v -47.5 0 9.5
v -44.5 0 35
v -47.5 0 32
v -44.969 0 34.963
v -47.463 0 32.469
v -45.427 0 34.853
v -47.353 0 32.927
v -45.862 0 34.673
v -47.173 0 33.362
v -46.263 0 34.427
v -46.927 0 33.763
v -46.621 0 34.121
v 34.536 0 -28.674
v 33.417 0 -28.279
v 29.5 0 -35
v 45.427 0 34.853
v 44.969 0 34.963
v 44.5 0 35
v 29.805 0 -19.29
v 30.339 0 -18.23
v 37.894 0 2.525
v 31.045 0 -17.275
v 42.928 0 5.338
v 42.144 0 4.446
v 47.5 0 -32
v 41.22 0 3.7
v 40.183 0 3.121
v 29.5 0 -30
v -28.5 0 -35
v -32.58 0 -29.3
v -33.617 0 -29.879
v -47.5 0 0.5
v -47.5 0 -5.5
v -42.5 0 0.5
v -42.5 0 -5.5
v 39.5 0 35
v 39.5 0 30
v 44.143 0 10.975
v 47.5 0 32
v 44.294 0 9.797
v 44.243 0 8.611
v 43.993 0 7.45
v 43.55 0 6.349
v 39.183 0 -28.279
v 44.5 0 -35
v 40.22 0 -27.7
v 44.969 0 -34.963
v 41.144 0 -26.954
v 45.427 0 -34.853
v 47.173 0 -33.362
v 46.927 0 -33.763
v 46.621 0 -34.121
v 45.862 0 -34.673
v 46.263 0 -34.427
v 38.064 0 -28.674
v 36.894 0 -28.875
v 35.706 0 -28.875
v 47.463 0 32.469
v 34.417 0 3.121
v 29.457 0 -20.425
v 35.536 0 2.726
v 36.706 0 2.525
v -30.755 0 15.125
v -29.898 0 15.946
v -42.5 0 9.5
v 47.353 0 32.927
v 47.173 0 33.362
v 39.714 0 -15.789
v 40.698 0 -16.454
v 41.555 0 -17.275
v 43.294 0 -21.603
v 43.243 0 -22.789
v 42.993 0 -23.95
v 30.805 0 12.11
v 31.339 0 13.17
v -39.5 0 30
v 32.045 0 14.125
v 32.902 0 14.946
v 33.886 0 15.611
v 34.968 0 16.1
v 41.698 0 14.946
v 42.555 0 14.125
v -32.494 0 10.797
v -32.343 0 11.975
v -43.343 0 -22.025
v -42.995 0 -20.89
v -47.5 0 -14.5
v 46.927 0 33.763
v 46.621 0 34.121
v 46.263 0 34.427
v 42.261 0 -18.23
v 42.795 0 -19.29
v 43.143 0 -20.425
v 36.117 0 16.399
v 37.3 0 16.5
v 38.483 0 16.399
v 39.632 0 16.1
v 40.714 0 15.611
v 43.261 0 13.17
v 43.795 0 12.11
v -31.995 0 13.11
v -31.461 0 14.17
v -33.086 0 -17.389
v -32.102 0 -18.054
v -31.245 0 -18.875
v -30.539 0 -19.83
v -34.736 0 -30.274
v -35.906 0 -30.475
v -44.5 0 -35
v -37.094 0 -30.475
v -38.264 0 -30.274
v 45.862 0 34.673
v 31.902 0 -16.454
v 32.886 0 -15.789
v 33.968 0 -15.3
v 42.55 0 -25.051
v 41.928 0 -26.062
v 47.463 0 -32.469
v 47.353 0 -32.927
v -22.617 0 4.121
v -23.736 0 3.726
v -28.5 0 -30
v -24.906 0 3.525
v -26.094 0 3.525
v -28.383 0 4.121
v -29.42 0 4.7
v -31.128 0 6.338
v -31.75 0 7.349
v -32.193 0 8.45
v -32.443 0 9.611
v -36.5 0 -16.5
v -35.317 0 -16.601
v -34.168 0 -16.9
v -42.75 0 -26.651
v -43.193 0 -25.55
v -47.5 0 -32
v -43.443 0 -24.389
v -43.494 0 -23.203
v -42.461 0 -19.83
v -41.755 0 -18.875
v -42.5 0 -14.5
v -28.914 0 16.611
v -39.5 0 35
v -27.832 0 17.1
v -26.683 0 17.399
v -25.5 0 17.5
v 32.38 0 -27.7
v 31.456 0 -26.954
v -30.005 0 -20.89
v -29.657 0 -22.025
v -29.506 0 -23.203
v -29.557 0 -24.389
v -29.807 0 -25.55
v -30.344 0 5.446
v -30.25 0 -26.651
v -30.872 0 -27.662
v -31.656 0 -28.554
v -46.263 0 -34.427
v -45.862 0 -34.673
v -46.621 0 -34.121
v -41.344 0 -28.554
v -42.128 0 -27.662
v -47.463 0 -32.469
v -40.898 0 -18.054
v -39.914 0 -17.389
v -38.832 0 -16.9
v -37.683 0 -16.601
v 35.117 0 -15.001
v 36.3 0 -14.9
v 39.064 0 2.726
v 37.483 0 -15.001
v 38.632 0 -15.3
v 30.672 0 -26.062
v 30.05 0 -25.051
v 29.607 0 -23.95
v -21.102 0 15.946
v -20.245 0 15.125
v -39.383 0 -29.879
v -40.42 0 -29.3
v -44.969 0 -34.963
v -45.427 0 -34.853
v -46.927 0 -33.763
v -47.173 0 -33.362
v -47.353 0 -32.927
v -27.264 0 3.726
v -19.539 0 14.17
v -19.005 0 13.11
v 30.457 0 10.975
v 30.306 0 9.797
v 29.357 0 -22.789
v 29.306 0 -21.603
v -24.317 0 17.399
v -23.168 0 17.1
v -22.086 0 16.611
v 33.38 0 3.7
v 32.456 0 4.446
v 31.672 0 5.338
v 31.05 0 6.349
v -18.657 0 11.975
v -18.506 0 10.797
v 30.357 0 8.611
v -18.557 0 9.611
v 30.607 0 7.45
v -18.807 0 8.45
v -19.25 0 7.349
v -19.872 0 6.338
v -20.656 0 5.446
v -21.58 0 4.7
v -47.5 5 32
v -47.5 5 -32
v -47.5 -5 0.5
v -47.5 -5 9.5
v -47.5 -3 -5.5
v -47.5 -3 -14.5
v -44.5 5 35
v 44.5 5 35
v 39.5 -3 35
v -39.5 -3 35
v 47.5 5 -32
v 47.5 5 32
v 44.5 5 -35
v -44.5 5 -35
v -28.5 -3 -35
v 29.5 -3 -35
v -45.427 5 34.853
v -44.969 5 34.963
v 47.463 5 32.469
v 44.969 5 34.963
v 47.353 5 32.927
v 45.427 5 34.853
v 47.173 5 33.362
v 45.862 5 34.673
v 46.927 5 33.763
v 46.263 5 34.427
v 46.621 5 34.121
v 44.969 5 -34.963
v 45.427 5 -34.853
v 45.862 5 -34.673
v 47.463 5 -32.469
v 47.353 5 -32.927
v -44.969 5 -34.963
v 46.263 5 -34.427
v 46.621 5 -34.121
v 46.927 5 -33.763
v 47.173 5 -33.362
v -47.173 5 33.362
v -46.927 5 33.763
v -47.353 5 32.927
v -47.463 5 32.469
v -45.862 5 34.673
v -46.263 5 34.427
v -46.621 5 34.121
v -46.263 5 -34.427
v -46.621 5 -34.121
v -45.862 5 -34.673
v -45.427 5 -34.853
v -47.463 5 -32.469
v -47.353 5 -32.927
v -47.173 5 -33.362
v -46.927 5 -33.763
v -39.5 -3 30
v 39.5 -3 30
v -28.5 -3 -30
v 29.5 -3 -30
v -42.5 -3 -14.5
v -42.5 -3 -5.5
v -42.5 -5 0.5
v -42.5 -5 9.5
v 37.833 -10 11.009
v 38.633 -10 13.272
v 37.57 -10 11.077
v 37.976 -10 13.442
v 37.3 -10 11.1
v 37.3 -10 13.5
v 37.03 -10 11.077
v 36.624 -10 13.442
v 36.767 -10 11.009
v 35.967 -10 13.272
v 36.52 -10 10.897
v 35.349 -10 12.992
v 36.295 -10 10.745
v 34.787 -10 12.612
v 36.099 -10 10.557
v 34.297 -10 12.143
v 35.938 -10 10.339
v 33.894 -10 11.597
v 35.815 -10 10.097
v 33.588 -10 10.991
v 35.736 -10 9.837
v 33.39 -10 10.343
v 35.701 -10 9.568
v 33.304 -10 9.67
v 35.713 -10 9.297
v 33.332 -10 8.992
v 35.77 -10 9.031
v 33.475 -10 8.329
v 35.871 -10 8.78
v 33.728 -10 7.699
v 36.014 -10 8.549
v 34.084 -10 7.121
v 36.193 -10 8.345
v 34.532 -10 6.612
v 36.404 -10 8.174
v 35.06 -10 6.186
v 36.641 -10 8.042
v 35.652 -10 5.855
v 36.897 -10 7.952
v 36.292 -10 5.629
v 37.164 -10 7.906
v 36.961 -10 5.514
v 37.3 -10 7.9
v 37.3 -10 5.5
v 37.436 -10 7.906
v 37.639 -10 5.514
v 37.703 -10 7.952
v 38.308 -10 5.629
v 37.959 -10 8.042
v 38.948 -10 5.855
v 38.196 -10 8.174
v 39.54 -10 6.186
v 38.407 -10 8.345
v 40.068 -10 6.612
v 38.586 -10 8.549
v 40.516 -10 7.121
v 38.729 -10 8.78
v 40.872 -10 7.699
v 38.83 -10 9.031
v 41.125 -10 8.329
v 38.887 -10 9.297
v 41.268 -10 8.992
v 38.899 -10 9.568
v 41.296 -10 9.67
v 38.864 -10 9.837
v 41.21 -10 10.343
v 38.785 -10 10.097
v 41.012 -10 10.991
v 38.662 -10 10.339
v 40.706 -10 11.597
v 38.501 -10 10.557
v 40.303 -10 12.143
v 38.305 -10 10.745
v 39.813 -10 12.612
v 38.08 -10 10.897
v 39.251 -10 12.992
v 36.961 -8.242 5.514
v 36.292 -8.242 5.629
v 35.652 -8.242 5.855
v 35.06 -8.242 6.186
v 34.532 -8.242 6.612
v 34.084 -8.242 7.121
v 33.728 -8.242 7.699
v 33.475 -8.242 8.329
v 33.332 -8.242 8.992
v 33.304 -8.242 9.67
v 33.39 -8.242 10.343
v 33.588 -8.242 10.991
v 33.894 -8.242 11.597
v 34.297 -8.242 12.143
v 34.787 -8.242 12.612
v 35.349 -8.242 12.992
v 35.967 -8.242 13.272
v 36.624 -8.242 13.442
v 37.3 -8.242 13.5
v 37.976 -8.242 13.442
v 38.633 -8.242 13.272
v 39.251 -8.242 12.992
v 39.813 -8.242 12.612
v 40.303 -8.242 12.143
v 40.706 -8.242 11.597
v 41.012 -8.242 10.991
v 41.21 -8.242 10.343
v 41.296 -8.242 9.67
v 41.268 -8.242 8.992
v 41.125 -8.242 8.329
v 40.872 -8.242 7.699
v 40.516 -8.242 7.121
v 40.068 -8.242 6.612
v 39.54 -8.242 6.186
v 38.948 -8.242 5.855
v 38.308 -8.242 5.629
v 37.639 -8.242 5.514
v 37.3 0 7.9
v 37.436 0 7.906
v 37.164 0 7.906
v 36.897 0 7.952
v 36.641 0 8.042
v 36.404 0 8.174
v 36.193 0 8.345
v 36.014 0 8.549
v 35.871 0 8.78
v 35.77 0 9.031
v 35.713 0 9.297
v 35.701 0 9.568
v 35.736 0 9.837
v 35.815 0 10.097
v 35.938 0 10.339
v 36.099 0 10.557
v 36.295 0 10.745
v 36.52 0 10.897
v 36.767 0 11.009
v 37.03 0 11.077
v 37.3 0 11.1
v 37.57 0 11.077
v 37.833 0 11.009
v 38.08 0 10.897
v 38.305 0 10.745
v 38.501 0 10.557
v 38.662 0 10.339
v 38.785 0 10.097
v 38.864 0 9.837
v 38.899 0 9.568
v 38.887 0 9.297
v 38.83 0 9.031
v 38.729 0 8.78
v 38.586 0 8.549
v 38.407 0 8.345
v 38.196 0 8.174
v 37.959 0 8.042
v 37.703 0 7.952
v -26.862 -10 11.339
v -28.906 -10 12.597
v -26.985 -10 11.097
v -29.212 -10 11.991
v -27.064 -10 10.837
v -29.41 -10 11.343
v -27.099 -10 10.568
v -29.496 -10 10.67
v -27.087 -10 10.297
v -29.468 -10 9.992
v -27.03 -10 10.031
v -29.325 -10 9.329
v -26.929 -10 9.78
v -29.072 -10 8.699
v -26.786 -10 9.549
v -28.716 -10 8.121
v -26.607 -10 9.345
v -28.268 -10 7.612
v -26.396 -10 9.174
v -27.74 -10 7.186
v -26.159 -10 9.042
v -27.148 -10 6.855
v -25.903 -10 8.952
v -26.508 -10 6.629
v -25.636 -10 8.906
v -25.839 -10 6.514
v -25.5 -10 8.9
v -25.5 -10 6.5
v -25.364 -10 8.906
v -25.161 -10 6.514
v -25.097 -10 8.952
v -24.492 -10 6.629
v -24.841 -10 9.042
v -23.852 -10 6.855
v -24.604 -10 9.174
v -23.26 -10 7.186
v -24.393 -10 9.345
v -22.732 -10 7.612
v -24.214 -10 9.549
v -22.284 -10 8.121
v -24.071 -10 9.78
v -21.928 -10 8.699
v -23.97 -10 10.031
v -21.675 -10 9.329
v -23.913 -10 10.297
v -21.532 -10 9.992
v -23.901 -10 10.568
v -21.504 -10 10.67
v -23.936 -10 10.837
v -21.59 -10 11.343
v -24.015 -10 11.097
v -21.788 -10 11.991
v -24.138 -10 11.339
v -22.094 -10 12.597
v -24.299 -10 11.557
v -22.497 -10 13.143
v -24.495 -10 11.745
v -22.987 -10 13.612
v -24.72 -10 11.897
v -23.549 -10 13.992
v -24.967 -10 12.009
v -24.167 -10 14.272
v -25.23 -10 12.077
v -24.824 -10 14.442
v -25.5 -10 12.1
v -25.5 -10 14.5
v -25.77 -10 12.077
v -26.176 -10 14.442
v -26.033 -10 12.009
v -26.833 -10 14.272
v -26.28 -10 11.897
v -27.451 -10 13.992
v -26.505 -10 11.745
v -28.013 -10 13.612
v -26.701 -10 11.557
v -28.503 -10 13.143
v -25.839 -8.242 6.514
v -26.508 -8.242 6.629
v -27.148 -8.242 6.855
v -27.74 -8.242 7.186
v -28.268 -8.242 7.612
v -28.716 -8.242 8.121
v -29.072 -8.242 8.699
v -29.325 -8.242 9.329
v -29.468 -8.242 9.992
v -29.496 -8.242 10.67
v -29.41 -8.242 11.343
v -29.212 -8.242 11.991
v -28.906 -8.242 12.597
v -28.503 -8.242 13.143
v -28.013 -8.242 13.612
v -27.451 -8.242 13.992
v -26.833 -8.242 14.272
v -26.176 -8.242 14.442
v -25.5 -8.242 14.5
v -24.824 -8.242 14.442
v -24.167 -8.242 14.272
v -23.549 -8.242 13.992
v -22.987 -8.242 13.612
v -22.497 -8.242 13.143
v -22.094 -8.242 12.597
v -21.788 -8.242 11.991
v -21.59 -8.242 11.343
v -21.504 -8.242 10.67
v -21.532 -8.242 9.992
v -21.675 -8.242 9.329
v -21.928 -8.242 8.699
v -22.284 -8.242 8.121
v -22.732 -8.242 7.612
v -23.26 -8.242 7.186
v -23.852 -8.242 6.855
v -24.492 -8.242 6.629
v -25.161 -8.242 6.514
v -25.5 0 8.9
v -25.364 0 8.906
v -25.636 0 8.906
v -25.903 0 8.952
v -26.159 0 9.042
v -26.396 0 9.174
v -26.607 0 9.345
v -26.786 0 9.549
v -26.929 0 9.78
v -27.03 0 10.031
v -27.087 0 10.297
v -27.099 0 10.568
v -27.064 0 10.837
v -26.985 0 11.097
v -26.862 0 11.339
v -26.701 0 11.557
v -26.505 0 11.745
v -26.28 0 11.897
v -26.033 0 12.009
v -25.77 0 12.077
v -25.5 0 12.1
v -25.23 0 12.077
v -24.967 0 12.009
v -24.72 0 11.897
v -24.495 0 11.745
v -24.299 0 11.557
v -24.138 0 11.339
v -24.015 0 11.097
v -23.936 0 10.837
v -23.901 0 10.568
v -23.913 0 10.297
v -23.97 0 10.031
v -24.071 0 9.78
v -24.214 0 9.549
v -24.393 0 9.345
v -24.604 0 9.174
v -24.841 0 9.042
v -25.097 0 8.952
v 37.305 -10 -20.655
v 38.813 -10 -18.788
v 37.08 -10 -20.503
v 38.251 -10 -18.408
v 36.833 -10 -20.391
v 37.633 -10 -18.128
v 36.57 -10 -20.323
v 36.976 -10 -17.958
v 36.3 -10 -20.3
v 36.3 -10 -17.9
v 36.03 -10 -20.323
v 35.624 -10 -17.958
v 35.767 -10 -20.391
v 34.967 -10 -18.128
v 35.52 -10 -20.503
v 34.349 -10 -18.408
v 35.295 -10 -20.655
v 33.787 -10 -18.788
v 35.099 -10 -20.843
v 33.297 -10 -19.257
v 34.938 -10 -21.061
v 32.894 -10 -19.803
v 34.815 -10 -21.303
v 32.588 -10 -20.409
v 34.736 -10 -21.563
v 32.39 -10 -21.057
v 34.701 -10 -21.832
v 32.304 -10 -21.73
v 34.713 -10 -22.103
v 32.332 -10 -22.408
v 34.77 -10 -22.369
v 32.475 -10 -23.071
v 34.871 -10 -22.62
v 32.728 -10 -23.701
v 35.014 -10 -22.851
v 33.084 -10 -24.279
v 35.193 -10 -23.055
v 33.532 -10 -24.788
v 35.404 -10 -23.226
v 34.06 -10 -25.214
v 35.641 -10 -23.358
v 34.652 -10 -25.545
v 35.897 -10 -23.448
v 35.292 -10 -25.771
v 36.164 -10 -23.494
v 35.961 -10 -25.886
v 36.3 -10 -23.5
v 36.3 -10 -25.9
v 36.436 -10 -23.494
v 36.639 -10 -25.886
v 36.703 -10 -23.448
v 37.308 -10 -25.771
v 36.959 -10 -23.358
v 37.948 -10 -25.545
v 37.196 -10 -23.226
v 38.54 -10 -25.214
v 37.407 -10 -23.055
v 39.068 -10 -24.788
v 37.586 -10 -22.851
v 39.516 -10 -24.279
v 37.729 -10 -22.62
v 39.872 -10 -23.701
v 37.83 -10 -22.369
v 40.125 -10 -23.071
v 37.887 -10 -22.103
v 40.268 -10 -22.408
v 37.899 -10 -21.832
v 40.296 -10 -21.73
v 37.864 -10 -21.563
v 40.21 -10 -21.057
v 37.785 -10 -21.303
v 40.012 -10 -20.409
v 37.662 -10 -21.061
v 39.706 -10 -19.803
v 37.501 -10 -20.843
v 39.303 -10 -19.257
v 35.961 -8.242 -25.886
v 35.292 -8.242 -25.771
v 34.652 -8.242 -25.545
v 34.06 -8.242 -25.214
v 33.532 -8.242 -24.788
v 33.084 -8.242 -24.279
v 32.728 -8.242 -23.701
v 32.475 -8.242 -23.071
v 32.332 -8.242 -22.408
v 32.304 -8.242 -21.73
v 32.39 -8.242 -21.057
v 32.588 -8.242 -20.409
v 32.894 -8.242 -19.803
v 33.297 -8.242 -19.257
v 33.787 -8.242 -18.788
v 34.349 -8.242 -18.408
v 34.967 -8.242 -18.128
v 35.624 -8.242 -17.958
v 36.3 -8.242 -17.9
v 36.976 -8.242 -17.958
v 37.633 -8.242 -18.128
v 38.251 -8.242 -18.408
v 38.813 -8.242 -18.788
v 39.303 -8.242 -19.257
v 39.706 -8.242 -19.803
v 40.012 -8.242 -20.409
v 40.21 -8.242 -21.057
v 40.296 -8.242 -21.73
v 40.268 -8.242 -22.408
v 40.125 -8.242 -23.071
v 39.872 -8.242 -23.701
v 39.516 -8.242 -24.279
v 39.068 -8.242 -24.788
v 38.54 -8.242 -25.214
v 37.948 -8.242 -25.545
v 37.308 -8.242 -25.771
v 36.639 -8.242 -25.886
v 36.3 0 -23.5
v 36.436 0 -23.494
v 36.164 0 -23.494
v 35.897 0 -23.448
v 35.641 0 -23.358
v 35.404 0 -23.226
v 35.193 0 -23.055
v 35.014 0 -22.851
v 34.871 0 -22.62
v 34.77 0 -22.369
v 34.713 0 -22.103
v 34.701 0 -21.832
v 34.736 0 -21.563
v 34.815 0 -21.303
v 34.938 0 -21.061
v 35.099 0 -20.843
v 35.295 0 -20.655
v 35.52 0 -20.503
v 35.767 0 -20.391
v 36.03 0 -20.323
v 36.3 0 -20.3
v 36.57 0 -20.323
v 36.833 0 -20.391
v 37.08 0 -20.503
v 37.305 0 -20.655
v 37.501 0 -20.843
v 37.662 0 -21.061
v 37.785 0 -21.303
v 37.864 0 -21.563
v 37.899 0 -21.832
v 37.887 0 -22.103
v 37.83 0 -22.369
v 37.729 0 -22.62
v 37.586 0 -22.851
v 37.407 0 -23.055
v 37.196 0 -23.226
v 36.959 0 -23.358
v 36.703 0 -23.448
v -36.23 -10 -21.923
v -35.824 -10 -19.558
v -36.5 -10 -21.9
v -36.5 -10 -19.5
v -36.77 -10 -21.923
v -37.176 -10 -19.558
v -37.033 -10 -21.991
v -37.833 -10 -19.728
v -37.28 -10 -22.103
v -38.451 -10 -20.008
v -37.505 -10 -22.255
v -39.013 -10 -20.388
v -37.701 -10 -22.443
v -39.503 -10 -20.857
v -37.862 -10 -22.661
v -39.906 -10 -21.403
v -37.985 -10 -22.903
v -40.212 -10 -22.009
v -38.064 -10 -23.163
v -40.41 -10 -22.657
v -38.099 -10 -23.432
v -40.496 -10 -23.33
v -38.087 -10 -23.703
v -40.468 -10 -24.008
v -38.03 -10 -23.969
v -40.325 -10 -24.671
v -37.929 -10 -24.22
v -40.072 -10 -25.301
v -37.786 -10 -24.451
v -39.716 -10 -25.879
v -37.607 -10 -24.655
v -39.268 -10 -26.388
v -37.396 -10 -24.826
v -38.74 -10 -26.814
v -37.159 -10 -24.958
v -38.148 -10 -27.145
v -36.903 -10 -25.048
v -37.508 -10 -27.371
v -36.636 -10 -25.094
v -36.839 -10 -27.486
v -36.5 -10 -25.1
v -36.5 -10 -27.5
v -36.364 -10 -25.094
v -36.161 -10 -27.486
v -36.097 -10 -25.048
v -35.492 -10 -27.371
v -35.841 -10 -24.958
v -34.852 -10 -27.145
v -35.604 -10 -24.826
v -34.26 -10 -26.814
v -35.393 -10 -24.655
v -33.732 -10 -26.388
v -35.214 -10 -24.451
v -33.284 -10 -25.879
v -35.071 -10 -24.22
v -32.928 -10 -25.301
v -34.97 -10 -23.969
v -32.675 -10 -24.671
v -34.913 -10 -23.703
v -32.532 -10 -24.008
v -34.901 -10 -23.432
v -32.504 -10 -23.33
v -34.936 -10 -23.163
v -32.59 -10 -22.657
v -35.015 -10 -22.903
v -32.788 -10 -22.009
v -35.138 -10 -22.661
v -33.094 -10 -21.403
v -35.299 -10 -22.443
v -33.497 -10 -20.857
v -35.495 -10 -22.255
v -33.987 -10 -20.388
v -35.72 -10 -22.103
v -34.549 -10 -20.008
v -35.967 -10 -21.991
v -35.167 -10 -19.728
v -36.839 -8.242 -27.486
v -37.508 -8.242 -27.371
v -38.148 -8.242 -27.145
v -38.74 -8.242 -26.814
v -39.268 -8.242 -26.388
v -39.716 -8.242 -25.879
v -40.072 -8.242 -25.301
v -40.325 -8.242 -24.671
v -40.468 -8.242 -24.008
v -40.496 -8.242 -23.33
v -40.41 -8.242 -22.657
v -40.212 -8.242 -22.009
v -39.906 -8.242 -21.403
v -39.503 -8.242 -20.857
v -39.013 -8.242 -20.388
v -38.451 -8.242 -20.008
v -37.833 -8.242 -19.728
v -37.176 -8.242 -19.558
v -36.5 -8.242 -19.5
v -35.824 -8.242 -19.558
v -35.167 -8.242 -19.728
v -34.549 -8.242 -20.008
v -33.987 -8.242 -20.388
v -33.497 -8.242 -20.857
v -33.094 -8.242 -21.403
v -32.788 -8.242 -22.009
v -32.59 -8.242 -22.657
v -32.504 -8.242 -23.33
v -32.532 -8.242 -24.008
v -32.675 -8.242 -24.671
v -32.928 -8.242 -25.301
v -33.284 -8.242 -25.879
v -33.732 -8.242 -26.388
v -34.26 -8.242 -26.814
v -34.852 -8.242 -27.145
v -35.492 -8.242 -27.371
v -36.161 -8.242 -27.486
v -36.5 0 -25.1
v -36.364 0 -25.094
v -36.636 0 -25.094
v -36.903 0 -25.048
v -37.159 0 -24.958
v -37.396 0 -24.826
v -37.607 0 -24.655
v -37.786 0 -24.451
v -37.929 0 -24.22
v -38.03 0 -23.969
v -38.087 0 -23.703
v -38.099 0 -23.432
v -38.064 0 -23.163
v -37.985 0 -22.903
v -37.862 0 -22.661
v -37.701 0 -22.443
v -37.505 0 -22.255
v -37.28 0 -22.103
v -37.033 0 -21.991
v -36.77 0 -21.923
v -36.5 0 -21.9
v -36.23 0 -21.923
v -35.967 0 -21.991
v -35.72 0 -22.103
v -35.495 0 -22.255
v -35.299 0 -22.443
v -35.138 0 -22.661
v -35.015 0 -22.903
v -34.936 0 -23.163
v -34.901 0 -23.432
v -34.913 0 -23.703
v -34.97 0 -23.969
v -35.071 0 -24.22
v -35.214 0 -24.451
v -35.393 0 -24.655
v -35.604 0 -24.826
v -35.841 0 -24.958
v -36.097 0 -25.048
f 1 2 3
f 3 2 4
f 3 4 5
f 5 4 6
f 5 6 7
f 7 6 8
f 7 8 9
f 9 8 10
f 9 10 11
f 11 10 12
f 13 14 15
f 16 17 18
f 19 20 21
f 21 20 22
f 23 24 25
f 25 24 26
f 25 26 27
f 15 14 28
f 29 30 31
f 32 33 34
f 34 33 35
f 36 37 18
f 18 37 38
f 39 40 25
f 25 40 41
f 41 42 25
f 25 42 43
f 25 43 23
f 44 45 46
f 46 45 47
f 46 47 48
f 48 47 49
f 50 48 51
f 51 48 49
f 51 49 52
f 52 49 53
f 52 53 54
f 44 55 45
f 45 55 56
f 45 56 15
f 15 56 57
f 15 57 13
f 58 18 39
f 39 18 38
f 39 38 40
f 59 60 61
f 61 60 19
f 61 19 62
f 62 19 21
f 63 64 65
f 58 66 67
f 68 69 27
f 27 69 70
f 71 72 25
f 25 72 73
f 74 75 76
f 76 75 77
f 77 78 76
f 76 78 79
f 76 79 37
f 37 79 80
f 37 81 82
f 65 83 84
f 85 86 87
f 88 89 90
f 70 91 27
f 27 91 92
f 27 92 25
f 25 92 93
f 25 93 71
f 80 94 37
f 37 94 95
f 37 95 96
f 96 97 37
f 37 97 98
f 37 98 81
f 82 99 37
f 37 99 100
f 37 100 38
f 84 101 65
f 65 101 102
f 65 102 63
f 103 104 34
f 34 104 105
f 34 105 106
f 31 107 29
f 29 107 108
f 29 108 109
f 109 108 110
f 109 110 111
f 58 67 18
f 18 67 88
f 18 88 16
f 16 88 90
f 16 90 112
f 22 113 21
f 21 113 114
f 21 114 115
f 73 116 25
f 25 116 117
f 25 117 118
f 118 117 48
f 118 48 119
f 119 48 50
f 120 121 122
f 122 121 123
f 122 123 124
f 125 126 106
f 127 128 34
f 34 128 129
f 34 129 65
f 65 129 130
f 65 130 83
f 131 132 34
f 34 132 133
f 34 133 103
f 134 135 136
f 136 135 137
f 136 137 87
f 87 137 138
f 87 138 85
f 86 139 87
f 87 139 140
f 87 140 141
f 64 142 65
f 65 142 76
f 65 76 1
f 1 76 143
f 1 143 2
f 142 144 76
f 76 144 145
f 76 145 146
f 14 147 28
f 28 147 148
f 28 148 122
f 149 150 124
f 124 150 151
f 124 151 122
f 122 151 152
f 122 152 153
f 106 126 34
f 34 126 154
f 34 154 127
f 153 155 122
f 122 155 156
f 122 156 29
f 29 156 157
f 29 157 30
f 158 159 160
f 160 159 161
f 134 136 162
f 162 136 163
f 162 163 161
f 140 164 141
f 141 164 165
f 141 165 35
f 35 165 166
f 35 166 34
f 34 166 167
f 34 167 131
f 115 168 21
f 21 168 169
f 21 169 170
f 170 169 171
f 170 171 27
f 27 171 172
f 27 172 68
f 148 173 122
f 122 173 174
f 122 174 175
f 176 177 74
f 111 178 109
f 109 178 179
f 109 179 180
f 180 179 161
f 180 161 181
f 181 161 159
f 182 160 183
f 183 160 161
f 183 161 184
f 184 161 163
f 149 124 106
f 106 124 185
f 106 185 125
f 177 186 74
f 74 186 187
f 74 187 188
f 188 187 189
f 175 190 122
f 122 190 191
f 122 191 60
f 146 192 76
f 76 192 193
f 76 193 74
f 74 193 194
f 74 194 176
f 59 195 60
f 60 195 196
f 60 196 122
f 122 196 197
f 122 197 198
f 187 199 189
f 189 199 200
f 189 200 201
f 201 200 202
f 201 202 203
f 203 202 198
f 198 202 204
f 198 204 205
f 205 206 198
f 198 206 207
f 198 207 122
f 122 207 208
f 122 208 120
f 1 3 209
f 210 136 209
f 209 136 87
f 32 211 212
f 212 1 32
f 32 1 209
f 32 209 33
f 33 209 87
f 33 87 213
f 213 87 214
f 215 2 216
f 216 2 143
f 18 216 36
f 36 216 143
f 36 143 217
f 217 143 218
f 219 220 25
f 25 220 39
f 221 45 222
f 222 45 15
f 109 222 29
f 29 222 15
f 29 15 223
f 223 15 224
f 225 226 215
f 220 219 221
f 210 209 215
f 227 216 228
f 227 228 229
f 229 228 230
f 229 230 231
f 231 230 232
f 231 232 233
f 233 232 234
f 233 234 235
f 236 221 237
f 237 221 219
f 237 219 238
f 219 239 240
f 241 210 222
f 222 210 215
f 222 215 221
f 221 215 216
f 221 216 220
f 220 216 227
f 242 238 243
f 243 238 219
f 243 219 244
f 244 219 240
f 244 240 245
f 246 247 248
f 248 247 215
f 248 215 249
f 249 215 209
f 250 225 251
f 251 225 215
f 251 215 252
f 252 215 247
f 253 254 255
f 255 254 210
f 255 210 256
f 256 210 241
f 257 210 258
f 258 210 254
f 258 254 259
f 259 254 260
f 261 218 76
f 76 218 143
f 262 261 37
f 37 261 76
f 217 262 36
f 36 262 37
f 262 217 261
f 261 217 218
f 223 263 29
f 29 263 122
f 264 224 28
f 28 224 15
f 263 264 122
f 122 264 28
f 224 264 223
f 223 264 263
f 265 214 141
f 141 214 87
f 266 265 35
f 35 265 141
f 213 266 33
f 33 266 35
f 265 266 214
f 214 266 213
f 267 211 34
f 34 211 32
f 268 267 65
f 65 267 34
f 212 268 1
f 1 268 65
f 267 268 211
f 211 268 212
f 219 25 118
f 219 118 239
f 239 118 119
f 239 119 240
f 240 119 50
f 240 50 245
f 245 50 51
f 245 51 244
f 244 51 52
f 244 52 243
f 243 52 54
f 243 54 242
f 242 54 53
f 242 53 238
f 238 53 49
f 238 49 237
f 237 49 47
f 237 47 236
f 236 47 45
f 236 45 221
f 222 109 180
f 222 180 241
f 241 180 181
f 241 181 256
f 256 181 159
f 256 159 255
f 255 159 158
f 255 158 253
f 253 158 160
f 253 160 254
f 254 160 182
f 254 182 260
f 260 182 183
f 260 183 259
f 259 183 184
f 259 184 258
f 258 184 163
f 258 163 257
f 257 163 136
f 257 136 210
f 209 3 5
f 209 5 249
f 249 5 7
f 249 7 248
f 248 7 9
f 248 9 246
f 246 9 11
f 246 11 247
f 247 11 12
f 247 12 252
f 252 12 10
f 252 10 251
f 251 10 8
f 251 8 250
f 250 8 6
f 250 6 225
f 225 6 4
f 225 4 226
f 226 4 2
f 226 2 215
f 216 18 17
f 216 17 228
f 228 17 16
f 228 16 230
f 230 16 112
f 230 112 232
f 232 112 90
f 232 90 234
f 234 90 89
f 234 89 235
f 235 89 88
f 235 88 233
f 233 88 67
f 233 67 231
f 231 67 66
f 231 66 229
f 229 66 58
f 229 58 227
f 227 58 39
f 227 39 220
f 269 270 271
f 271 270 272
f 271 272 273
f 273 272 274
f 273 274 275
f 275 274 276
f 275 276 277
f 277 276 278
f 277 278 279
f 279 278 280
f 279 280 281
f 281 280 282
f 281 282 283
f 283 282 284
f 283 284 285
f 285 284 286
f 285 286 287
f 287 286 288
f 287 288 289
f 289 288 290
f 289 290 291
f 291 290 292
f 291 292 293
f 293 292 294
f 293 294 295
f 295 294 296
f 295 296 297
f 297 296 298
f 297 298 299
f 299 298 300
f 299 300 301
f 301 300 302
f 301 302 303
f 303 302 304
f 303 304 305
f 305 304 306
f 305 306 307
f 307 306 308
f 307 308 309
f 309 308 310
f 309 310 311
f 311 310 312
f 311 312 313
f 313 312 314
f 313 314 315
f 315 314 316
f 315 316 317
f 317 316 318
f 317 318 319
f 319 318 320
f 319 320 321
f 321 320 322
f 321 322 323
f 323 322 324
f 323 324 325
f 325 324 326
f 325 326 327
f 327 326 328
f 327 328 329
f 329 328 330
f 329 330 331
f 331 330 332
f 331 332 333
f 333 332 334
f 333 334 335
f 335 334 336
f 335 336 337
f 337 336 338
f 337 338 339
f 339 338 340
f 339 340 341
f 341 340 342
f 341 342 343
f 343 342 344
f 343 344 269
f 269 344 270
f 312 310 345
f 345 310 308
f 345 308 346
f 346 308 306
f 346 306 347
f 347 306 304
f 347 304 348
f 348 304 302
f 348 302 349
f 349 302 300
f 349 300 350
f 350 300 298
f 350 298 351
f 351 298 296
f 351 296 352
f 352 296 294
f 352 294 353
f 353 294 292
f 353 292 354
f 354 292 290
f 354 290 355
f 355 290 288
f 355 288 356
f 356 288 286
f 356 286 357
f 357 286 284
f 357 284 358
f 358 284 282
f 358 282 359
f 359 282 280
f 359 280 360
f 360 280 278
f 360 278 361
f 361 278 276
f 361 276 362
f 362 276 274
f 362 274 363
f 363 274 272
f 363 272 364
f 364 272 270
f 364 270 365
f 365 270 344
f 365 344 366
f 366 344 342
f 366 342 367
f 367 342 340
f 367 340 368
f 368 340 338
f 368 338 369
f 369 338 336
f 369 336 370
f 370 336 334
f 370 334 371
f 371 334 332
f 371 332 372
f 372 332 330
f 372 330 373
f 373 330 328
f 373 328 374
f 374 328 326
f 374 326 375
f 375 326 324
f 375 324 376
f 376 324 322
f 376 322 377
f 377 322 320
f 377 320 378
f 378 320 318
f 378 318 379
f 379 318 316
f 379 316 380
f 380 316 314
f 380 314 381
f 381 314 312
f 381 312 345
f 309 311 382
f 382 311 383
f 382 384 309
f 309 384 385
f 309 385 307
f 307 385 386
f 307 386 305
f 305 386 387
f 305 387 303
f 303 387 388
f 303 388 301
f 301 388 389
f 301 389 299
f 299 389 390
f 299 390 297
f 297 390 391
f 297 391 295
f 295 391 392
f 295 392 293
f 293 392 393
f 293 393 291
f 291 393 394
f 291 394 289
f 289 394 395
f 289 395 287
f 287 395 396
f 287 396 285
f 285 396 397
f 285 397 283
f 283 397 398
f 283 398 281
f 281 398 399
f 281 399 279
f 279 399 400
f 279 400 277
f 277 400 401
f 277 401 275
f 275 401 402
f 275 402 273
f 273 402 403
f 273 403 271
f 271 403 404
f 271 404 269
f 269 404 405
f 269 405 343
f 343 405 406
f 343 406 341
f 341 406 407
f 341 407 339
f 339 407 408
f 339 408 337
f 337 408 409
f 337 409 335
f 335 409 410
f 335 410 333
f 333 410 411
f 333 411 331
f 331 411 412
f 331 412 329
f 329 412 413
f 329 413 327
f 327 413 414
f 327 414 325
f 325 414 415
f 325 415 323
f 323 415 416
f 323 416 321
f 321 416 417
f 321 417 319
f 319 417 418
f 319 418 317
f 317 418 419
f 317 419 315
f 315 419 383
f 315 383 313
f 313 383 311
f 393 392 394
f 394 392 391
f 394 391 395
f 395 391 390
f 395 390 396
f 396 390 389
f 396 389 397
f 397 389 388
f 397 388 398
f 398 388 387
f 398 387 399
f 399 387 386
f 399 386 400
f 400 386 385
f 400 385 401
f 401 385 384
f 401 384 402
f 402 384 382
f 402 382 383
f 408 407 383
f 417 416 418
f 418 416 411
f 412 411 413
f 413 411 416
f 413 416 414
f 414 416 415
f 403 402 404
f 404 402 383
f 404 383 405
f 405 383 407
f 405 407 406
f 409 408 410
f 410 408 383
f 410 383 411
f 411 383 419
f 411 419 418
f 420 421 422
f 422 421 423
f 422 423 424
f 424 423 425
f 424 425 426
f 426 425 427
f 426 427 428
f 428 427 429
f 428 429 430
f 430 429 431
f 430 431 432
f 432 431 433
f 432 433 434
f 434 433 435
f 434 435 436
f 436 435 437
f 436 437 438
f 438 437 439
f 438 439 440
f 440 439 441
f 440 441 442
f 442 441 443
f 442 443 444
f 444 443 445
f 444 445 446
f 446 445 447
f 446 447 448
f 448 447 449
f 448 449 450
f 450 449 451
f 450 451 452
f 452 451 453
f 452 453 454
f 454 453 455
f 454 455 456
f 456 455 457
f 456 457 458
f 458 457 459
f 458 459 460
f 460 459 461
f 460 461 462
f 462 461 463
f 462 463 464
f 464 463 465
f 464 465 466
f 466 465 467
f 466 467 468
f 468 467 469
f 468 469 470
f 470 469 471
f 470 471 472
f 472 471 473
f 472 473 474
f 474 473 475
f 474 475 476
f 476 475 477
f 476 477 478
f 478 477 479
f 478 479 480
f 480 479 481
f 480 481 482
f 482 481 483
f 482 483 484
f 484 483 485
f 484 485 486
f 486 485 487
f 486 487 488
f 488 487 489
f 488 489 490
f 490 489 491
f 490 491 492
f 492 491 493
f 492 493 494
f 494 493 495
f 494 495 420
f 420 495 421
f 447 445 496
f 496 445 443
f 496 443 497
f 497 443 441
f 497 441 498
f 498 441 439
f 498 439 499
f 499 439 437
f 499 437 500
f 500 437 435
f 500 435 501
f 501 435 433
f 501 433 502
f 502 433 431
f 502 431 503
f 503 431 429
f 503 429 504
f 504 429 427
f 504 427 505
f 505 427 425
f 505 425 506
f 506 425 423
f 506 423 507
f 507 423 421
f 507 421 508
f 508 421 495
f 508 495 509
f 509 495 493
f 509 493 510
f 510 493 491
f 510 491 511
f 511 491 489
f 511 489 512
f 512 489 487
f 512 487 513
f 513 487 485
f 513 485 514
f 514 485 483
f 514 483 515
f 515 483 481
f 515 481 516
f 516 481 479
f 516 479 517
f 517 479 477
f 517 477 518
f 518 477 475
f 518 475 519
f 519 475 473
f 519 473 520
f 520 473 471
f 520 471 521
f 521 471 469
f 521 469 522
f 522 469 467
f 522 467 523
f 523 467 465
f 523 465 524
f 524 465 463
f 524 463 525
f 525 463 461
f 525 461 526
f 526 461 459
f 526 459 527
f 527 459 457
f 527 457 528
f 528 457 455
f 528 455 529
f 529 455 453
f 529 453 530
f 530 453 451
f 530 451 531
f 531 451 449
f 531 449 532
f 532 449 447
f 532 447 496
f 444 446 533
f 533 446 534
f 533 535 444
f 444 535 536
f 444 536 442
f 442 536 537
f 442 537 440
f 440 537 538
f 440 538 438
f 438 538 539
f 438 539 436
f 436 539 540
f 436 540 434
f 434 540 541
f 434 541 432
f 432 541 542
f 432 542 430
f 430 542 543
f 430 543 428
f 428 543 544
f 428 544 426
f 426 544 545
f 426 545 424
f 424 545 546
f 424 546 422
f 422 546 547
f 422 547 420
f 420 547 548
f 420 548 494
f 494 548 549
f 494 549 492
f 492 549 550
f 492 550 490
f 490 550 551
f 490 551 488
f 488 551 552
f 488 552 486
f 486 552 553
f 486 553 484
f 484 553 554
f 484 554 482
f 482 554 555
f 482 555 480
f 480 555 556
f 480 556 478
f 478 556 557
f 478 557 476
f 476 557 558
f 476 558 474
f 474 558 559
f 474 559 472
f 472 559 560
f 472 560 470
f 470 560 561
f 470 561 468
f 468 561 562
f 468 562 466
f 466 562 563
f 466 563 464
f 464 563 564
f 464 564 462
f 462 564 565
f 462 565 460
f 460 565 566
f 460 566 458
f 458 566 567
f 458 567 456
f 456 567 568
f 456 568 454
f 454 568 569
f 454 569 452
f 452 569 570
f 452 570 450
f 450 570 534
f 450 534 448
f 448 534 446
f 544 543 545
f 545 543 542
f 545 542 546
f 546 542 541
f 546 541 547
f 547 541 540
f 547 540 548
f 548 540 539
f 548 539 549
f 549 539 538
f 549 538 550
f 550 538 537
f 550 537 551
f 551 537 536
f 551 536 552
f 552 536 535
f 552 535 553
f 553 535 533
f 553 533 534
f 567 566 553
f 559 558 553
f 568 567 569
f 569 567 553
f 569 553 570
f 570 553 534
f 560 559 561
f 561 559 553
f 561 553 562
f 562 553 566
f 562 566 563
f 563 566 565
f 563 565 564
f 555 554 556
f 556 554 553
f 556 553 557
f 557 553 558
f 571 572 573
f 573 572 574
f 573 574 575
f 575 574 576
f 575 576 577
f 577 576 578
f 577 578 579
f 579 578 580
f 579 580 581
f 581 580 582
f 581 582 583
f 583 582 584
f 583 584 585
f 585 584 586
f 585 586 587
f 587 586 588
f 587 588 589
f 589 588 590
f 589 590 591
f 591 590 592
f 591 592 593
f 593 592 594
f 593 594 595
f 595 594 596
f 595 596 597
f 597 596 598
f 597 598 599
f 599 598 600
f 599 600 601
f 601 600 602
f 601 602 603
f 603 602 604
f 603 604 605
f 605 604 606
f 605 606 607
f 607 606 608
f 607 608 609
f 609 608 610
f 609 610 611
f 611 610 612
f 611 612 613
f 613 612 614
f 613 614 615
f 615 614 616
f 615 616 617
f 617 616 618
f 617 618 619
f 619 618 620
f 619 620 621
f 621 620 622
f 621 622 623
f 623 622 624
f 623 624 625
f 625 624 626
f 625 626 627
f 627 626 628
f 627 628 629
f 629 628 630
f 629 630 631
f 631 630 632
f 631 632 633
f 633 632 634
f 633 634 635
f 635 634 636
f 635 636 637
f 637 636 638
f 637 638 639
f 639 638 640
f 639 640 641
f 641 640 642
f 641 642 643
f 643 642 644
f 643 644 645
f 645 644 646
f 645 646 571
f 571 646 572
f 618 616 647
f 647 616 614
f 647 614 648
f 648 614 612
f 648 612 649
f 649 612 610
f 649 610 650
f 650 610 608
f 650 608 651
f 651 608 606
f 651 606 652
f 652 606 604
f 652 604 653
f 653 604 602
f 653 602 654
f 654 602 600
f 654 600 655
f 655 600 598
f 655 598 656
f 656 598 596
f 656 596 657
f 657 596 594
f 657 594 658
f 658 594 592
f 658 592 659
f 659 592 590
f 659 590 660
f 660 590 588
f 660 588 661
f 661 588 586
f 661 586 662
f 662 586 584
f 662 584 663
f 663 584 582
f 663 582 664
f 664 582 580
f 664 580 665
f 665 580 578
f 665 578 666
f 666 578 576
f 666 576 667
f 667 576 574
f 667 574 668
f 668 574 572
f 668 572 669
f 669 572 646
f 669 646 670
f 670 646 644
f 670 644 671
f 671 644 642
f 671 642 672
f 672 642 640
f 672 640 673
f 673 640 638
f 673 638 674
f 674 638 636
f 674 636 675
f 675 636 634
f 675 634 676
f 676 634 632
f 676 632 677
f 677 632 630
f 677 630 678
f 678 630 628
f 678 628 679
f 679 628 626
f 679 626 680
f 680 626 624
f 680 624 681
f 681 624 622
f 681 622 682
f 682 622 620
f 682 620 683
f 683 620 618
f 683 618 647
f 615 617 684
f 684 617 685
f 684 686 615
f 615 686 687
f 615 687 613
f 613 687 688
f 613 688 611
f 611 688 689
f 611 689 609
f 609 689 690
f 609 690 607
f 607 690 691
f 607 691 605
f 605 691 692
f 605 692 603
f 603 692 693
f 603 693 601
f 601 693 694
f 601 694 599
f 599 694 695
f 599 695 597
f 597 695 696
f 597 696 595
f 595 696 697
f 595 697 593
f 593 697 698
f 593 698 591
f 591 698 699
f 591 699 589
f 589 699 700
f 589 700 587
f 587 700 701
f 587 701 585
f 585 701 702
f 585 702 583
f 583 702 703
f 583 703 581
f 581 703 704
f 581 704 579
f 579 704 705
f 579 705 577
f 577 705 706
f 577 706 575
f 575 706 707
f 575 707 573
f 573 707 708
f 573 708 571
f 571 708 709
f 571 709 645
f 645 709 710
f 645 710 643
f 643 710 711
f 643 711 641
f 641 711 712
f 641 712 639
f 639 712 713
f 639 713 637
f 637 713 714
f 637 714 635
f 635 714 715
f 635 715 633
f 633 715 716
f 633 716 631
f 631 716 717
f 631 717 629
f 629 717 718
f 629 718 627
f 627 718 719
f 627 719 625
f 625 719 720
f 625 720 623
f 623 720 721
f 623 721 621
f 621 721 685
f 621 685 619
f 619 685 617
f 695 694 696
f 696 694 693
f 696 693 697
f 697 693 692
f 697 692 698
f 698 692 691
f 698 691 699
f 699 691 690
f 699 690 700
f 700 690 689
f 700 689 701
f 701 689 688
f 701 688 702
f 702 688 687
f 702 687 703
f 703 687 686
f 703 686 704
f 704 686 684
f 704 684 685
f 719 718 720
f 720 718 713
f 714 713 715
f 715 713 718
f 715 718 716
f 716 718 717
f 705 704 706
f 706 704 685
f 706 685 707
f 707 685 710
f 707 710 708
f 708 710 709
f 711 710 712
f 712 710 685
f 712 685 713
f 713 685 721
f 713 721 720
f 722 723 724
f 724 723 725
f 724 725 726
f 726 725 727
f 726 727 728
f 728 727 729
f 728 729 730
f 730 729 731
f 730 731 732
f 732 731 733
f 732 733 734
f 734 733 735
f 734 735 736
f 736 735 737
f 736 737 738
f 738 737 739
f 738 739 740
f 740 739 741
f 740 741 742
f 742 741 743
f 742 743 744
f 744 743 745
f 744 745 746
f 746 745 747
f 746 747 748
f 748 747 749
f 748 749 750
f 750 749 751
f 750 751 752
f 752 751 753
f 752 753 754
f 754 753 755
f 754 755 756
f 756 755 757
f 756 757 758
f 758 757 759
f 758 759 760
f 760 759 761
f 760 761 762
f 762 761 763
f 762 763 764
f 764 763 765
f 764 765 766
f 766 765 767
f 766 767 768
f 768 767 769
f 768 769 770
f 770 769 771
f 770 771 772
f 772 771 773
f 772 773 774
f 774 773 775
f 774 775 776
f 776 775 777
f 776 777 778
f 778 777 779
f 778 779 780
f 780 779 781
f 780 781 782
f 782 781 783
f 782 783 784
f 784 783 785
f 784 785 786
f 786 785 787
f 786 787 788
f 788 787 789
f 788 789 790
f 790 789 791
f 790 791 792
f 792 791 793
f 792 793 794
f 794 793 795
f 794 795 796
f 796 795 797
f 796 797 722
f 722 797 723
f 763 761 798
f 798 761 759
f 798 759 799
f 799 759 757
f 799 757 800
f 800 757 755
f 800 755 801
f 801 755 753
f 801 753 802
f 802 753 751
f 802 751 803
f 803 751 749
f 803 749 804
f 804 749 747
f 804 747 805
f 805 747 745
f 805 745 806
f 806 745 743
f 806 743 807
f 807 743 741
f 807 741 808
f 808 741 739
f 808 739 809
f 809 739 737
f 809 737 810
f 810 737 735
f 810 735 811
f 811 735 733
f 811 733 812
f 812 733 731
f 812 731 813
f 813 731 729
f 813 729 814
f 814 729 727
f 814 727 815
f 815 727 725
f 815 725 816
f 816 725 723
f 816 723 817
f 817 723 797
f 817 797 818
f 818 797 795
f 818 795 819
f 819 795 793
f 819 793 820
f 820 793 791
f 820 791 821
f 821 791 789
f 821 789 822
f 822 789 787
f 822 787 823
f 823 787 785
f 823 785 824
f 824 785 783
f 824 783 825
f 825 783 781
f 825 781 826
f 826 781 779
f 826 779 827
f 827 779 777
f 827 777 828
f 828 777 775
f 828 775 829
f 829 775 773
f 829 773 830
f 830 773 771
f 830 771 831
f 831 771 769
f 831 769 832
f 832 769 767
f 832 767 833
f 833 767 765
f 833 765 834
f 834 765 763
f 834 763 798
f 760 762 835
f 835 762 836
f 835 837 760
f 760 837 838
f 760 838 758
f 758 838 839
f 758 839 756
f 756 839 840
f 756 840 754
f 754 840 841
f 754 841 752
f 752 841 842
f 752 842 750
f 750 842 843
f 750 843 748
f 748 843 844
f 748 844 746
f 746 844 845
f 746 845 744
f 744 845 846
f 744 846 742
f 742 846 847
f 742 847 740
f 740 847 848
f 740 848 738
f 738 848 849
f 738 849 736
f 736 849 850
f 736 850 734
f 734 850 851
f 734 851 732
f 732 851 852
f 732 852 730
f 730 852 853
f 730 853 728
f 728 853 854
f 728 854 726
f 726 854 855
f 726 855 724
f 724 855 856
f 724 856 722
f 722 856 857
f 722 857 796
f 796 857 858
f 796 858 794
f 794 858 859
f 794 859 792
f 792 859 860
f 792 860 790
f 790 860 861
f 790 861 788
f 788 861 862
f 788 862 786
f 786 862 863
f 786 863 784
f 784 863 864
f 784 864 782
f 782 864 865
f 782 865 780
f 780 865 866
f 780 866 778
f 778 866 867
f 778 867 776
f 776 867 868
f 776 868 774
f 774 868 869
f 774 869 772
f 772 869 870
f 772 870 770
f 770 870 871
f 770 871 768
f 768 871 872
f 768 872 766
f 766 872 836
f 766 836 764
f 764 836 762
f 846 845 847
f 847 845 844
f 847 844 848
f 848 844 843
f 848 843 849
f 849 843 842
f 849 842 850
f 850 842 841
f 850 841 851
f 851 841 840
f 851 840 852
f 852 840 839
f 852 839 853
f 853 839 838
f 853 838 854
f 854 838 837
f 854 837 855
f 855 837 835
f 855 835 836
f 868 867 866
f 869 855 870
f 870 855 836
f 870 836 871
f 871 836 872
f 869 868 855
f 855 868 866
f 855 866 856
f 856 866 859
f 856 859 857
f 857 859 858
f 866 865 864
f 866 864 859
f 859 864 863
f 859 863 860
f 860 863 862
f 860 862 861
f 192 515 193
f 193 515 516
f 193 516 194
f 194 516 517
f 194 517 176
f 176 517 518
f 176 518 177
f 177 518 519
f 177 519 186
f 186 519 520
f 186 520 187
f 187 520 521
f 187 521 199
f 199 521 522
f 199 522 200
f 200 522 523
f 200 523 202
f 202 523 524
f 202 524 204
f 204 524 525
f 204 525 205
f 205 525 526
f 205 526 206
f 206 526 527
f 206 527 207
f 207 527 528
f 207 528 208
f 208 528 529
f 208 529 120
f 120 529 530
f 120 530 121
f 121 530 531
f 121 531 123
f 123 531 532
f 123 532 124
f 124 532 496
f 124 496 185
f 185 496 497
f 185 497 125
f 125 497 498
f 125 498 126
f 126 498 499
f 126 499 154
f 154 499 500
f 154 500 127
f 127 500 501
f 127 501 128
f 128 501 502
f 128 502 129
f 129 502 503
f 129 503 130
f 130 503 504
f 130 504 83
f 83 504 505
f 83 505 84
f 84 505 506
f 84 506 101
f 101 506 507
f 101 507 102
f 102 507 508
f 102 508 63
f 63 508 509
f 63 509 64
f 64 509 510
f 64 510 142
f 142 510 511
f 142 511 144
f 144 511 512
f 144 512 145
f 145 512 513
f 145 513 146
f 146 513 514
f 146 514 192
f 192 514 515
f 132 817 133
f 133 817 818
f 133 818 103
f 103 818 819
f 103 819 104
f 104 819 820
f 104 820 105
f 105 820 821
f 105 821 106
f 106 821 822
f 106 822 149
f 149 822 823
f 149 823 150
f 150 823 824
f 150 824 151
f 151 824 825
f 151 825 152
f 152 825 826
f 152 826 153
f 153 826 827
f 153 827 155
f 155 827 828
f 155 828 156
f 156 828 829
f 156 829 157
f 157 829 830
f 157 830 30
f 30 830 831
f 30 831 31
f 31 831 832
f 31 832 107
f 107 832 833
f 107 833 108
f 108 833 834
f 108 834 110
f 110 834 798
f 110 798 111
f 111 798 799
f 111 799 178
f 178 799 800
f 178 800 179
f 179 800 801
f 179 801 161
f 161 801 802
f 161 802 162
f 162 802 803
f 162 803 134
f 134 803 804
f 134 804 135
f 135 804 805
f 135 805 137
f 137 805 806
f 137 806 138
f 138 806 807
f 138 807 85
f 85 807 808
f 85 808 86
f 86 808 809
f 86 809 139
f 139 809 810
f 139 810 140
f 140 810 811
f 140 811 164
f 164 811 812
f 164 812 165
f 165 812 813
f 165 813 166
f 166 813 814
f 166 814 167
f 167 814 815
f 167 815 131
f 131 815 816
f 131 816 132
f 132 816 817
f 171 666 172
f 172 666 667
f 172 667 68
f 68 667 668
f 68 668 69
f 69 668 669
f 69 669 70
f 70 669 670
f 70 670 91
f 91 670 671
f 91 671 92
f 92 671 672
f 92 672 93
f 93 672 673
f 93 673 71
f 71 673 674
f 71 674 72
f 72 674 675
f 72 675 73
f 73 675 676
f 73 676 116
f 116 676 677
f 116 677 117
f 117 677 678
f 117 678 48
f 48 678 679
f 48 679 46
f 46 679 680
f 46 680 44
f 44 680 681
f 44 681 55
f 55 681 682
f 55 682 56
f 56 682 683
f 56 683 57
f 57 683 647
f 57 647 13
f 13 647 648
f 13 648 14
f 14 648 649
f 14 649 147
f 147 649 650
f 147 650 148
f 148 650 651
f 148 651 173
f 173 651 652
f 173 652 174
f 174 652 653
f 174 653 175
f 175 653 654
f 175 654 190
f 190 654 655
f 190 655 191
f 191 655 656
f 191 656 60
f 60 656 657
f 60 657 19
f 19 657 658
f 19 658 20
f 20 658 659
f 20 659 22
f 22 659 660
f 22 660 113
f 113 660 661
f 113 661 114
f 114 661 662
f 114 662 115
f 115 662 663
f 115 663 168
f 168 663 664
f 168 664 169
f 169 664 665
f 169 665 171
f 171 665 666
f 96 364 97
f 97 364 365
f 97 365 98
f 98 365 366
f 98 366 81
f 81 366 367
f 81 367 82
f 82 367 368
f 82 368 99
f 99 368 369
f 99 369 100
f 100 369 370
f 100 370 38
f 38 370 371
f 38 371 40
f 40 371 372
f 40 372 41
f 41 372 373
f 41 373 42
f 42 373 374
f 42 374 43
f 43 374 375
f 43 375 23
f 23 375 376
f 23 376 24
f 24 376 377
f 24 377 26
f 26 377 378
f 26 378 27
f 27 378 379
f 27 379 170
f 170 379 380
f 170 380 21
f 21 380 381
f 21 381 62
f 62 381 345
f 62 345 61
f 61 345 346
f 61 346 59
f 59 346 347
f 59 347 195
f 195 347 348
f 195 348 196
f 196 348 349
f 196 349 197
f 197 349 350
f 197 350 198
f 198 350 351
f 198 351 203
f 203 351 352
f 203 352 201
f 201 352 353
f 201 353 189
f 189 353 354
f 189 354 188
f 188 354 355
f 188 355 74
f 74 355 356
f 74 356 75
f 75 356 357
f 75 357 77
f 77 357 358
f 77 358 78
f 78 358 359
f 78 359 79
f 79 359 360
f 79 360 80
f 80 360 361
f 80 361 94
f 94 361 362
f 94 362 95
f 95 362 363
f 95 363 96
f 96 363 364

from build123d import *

# Parameters (mm, degrees)
ESQUISSE1_W      = 95
ESQUISSE1_H      = 70
EXTRUSION1_DEPTH = 5
ESQUISSE2_W      = 79
ESQUISSE2_H      = 5
ESQUISSE2_W_2    = 58
ESQUISSE2_W_3    = 5
ESQUISSE2_H_2    = 9
EXTRUSION2_DEPTH = 3
ESQUISSE3_W      = 5
ESQUISSE3_H      = 9
EXTRUSION3_DEPTH = 5
CONG_1_R         = 3
ESQUISSE5_R      = 4
ESQUISSE5_R_2    = 1.6
EXTRUSION4_DEPTH = 10
CHANFREIN1_SIZE  = 3
CHANFREIN1_SIZE2 = 8.242432258


with BuildPart() as part:
    # Esquisse1 → Extrusion1 (new body)
    with BuildSketch(Plane(origin=(0, 0, 0), x_dir=(1, 0, 0), z_dir=(0, 1, 0))):
        Rectangle(ESQUISSE1_W, ESQUISSE1_H)
    extrude(amount=EXTRUSION1_DEPTH)

    # Esquisse2 → Extrusion2 (add)
    with BuildSketch(Plane.XZ):
        with Locations((0, 32.5)):
            Rectangle(ESQUISSE2_W, ESQUISSE2_H)
        with Locations((0.5, -32.5)):
            Rectangle(ESQUISSE2_W_2, ESQUISSE2_H)
        with Locations((-45, -10)):
            Rectangle(ESQUISSE2_W_3, ESQUISSE2_H_2)
    extrude(amount=EXTRUSION2_DEPTH)

    # Esquisse3 → Extrusion3 (add)
    with BuildSketch(Plane.XZ):
        with Locations((-45, 5)):
            Rectangle(ESQUISSE3_W, ESQUISSE3_H)
    extrude(amount=EXTRUSION3_DEPTH)

    # Congé1
    cong_1_edges = [part.edges().sort_by_distance(p)[0] for p in [
        (47.5, 2.5, -35),
        (-47.5, 2.5, -35),
        (-47.5, 2.5, 35),
        (47.5, 2.5, 35),
    ]]
    fillet(cong_1_edges, radius=CONG_1_R)

    # Esquisse5 → Extrusion4 (add)
    with BuildSketch(Plane.XZ):
        with Locations((-25.5, 10.5)):
            Circle(ESQUISSE5_R)
        with Locations((-25.5, 10.5)):
            Circle(ESQUISSE5_R_2, mode=Mode.SUBTRACT)
        with Locations((37.3, 9.5)):
            Circle(ESQUISSE5_R)
        with Locations((37.3, 9.5)):
            Circle(ESQUISSE5_R_2, mode=Mode.SUBTRACT)
        with Locations((36.3, -21.9)):
            Circle(ESQUISSE5_R)
        with Locations((36.3, -21.9)):
            Circle(ESQUISSE5_R_2, mode=Mode.SUBTRACT)
        with Locations((-36.5, -23.5)):
            Circle(ESQUISSE5_R)
        with Locations((-36.5, -23.5)):
            Circle(ESQUISSE5_R_2, mode=Mode.SUBTRACT)
    extrude(amount=EXTRUSION4_DEPTH)

    # Chanfrein1
    chanfrein1_edges = [part.edges().sort_by_distance(p)[0] for p in [
        (-29.5, 0, 10.5),
        (32.3, 0, -21.9),
        (-40.5, 0, -23.5),
        (33.3, 0, 9.5),
    ]]
    chanfrein1_side = [part.faces().sort_by_distance(p)[0] for p in [
        (0.586268245, 0, -0.3372194),
    ]]
    chamfer(chanfrein1_edges, length=CHANFREIN1_SIZE, length2=CHANFREIN1_SIZE2, reference=chanfrein1_side[0])


solid = part.part
